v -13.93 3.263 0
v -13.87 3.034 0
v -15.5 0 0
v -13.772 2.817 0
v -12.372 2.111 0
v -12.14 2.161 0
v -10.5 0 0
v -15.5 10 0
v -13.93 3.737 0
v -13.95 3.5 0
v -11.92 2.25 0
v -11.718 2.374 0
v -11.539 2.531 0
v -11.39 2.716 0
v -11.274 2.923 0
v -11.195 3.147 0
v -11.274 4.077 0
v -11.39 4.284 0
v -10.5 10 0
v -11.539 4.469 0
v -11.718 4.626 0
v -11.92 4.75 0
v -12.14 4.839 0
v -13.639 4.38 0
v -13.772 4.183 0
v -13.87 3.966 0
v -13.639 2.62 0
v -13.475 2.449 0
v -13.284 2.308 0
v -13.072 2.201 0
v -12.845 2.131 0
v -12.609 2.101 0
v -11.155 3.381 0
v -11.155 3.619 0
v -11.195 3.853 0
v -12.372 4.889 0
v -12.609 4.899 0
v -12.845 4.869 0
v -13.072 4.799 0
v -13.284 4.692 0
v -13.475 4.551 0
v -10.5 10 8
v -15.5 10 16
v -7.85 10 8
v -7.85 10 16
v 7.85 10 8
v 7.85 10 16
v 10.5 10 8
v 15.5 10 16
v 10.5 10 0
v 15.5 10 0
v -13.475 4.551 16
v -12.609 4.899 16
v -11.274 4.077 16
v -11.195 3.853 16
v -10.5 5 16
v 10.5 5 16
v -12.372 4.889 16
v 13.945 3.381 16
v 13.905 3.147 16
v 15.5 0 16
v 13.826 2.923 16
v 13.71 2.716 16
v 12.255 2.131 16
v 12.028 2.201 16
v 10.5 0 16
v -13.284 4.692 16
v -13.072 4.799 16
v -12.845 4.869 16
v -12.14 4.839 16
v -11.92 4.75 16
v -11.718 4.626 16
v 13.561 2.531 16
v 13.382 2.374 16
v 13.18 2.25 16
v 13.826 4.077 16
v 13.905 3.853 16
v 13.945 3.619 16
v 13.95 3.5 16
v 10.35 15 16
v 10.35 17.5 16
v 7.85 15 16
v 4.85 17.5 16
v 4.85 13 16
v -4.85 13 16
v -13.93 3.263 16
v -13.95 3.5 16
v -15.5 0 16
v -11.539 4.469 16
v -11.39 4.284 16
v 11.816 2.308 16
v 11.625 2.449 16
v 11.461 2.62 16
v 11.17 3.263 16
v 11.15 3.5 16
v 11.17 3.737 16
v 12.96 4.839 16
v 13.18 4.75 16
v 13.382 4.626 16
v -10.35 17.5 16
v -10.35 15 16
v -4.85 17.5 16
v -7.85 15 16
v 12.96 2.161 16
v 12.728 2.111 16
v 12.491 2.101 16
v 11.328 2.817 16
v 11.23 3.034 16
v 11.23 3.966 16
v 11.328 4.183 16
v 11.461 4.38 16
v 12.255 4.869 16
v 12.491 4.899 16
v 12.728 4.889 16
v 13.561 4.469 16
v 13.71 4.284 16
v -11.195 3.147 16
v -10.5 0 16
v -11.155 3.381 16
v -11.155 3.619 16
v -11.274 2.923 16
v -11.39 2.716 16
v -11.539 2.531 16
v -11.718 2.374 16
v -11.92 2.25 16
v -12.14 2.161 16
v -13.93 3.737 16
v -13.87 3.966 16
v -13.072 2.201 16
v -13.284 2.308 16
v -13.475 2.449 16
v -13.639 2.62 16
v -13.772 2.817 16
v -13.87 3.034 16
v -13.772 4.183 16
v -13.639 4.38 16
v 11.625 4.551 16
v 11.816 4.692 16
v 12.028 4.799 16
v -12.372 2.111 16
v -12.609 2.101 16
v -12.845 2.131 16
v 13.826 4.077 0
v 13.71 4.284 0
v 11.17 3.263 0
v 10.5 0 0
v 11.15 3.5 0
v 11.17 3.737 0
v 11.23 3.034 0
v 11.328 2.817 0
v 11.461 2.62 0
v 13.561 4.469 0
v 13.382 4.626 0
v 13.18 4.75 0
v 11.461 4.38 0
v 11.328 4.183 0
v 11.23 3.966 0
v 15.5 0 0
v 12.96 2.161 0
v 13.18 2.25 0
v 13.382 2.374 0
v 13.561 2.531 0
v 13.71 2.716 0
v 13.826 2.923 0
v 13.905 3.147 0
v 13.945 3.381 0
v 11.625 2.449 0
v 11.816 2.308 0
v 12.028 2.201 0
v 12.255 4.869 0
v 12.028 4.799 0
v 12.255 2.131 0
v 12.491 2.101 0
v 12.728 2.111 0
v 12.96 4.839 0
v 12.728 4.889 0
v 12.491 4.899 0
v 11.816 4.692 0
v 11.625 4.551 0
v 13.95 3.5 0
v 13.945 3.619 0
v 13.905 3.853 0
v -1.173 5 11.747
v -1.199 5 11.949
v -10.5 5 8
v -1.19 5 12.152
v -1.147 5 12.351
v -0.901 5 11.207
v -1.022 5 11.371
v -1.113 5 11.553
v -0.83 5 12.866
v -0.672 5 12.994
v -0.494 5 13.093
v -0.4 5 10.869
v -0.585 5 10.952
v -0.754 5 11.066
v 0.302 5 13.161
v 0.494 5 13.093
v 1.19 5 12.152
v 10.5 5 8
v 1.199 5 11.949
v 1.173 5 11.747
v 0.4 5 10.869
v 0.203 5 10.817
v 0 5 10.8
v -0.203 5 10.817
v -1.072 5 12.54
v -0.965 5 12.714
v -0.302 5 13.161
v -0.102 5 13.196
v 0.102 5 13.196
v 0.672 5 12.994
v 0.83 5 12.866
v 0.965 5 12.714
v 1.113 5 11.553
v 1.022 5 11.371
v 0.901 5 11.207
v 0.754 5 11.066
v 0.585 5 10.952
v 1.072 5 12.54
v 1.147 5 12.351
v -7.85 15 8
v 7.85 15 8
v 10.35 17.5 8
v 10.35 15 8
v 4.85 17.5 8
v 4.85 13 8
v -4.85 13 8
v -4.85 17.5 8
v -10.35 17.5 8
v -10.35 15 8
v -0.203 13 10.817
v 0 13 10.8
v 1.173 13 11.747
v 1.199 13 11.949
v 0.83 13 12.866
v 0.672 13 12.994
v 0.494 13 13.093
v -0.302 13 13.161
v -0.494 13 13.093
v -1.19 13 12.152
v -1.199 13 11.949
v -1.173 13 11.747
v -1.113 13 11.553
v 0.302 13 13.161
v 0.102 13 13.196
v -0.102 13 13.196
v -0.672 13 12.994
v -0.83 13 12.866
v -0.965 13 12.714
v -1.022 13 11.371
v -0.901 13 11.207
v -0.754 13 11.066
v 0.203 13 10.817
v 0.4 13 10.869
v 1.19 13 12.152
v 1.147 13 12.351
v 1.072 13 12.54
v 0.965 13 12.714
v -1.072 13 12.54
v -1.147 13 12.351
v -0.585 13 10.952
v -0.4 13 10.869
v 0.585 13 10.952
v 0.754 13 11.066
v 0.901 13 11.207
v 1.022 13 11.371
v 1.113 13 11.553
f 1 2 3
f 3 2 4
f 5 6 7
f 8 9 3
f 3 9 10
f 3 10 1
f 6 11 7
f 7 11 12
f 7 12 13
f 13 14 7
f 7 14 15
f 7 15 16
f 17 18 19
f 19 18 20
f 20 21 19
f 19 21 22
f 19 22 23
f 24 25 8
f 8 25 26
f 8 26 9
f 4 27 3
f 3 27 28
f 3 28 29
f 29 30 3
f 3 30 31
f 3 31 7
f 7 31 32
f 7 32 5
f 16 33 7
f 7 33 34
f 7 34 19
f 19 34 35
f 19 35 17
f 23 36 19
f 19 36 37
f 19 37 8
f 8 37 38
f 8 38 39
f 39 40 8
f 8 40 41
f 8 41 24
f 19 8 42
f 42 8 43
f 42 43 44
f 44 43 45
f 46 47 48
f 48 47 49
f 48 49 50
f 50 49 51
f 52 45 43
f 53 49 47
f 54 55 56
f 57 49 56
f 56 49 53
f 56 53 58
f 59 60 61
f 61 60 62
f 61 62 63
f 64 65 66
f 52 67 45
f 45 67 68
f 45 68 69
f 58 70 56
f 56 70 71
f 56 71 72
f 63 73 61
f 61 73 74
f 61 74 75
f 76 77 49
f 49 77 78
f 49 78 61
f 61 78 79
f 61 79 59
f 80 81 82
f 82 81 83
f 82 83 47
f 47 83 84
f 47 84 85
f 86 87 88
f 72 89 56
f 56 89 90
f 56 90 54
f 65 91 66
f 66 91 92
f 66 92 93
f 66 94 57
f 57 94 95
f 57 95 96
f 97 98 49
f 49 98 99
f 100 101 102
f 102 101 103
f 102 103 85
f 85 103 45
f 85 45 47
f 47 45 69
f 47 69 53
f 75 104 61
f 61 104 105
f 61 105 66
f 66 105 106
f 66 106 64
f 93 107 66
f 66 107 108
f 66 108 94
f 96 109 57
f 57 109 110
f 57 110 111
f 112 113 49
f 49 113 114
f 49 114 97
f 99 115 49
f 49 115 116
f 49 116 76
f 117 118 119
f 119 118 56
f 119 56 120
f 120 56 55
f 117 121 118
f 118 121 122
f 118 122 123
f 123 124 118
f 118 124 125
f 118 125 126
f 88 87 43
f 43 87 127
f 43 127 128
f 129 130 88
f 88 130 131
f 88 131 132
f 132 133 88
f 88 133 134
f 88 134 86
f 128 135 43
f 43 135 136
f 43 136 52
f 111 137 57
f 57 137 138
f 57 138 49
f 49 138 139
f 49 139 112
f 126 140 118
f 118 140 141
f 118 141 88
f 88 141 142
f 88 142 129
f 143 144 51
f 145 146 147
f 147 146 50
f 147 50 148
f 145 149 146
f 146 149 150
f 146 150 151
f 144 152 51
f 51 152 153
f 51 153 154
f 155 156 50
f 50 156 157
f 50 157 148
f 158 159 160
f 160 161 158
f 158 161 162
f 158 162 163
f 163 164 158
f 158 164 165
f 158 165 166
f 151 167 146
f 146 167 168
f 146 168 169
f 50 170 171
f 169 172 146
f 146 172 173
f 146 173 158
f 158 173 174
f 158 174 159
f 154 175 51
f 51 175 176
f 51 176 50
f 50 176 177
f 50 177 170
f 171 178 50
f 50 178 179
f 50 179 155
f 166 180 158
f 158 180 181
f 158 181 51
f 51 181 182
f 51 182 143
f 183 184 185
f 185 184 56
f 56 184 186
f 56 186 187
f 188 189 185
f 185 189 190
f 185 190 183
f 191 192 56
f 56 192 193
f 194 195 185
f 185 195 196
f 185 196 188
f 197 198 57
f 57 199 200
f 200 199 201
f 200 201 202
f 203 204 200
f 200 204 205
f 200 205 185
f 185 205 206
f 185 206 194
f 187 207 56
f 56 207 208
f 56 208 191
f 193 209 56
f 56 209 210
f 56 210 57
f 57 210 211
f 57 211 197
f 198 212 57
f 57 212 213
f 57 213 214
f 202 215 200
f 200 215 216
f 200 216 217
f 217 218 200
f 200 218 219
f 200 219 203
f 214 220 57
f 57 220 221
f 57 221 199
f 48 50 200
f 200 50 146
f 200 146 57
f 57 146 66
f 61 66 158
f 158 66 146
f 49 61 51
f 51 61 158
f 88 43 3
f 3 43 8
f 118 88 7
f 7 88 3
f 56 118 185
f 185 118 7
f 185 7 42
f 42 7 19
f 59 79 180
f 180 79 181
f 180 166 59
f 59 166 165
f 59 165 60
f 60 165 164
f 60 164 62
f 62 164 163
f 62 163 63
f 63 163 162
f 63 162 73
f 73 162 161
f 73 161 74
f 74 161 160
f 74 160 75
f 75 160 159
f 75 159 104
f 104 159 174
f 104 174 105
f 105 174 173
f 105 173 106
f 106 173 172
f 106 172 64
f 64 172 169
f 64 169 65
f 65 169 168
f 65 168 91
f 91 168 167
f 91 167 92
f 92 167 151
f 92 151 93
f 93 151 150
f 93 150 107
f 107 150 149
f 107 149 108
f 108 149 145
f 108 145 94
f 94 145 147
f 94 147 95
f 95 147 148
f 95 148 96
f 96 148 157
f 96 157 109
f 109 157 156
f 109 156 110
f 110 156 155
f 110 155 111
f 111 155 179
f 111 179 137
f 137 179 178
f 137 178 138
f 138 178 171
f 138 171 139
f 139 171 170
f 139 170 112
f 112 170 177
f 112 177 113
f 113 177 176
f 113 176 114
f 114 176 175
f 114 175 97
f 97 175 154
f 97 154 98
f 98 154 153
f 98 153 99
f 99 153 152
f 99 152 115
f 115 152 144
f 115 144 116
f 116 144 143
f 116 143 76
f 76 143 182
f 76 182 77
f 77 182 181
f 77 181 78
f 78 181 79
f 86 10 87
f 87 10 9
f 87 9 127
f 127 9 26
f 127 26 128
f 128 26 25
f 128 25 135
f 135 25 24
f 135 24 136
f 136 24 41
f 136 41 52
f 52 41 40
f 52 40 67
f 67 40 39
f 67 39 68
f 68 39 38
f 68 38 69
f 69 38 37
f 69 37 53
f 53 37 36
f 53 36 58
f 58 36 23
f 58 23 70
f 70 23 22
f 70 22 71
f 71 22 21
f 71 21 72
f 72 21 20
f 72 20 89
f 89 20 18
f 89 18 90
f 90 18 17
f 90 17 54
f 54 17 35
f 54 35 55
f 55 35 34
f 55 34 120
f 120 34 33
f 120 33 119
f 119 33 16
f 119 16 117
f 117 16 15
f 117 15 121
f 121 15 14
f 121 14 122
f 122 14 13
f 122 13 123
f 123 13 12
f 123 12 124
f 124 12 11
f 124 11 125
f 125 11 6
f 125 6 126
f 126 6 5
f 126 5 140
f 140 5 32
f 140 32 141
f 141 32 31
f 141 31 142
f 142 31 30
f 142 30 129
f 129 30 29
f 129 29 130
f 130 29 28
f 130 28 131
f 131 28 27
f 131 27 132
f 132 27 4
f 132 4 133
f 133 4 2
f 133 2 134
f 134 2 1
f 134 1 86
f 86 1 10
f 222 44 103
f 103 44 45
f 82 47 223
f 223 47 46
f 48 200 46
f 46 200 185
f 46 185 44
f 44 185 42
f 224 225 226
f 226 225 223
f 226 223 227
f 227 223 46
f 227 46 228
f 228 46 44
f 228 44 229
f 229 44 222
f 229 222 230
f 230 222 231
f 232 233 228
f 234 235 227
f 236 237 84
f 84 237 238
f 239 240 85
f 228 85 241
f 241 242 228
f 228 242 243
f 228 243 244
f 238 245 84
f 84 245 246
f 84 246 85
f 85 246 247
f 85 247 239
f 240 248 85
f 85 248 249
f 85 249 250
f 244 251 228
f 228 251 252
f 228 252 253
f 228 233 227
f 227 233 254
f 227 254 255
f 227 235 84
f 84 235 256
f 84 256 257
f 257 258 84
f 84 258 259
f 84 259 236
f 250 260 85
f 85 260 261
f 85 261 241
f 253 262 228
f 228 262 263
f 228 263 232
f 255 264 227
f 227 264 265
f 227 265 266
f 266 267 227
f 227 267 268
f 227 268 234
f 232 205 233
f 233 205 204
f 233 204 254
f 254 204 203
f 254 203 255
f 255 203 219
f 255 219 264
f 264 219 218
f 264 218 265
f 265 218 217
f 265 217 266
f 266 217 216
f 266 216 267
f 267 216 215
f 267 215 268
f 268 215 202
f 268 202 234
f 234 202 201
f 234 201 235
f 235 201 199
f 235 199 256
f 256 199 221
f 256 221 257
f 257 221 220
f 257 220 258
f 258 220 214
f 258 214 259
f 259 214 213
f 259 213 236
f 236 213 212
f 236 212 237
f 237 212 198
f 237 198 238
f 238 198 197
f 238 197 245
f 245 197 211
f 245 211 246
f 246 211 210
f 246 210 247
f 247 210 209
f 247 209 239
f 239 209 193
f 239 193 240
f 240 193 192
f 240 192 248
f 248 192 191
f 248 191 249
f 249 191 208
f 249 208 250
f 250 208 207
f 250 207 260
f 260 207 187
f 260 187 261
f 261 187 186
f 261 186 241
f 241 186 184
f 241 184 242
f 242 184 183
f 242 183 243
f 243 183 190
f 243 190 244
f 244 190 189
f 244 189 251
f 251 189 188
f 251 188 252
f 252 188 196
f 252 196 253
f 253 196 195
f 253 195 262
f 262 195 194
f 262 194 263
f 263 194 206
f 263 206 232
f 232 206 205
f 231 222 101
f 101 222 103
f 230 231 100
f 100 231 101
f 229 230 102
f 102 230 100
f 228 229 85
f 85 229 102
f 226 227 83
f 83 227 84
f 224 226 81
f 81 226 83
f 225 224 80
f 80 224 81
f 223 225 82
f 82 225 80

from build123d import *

# Parameters (mm, degrees)
ESQUISSE1_R             = 1.4
BOSS_EXTRU_1_DEPTH      = 16
ESQUISSE2_W             = 15.7
ESQUISSE2_H             = 16
BOSS_EXTRU_2_DEPTH      = 15
ESQUISSE3_R             = 4
ENL_V_MAT_EXTRU_1_DEPTH = 15
ESQUISSE4_W             = 21
ESQUISSE4_H             = 8
ENL_V_MAT_EXTRU_2_DEPTH = 21
ESQUISSE5_R             = 1.4
ENL_V_MAT_EXTRU_3_DEPTH = 21
ESQUISSE6_W             = 18.213974707
ESQUISSE6_H             = 12
ENL_V_MAT_EXTRU_4_DEPTH = 10
ESQUISSE7_R             = 1.2
ENL_V_MAT_EXTRU_5_DEPTH = 24.669600757
BOSS_EXTRU_3_DEPTH      = 8


with BuildPart() as part:
    # Esquisse1 → Boss.-Extru.1 (new body)
    with BuildSketch(Plane.XY):
        Polygon((15.5, 10), (-15.5, 10), (-15.5, 0), (-10.5, 0), (-10.5, 5), (10.5, 5), (10.5, 0), (15.5, 0), align=None)
        with Locations((12.55, 3.5)):
            Circle(ESQUISSE1_R, mode=Mode.SUBTRACT)
        with Locations(Location((-12.55, 3.5, 0), (0, 0, 180))):
            Circle(ESQUISSE1_R, mode=Mode.SUBTRACT)
    extrude(amount=BOSS_EXTRU_1_DEPTH)

    # Esquisse2 → Boss.-Extru.2 (add)
    with BuildSketch(Plane(origin=(0, 10, 0), x_dir=(1, 0, 0), z_dir=(0, 1, 0))):
        with Locations((0, -8)):
            Rectangle(ESQUISSE2_W, ESQUISSE2_H)
    extrude(amount=BOSS_EXTRU_2_DEPTH)

    # Esquisse3 → Enlèv. mat.-Extru.1 (cut)
    with BuildSketch(Plane.XY.offset(16)):
        with Locations((0, 17.5)):
            Circle(ESQUISSE3_R)
    extrude(amount=-ENL_V_MAT_EXTRU_1_DEPTH, mode=Mode.SUBTRACT)

    # Esquisse4 → Enlèv. mat.-Extru.2 (cut)
    with BuildSketch(Plane.XZ.offset(-5)):
        with Locations((0, 4)):
            Rectangle(ESQUISSE4_W, ESQUISSE4_H)
    extrude(amount=-ENL_V_MAT_EXTRU_2_DEPTH, mode=Mode.SUBTRACT)

    # Esquisse5 → Enlèv. mat.-Extru.3 (cut)
    with BuildSketch(Plane.ZY.offset(7.85)):
        with Locations((12, 17.5)):
            Circle(ESQUISSE5_R)
    extrude(amount=-ENL_V_MAT_EXTRU_3_DEPTH, mode=Mode.SUBTRACT)

    # Esquisse6 → Enlèv. mat.-Extru.4 (cut)
    with BuildSketch(Plane.XY.offset(16)):
        with Locations((-1.256987354, 19)):
            Rectangle(ESQUISSE6_W, ESQUISSE6_H)
    extrude(amount=-ENL_V_MAT_EXTRU_4_DEPTH, mode=Mode.SUBTRACT)

    # Esquisse7 → Enlèv. mat.-Extru.5 (cut, through all)
    with BuildSketch(Plane.XZ.offset(-5)):
        with Locations(Location((0, 12, 0), (0, 0, 270))):
            Circle(ESQUISSE7_R)
    extrude(amount=-ENL_V_MAT_EXTRU_5_DEPTH, mode=Mode.SUBTRACT)

    # Esquisse8 → Boss.-Extru.3 (add)
    with BuildSketch(Plane.XY.offset(16)):
        Polygon((-7.85, 13), (-7.85, 15), (-10.35, 15), (-10.35, 17.5), (-4.85, 17.5), (-4.85, 13), align=None)
        Polygon((4.85, 13), (7.85, 13), (7.85, 15), (10.35, 15), (10.35, 17.5), (4.85, 17.5), align=None)
    extrude(amount=-BOSS_EXTRU_3_DEPTH)


solid = part.part
